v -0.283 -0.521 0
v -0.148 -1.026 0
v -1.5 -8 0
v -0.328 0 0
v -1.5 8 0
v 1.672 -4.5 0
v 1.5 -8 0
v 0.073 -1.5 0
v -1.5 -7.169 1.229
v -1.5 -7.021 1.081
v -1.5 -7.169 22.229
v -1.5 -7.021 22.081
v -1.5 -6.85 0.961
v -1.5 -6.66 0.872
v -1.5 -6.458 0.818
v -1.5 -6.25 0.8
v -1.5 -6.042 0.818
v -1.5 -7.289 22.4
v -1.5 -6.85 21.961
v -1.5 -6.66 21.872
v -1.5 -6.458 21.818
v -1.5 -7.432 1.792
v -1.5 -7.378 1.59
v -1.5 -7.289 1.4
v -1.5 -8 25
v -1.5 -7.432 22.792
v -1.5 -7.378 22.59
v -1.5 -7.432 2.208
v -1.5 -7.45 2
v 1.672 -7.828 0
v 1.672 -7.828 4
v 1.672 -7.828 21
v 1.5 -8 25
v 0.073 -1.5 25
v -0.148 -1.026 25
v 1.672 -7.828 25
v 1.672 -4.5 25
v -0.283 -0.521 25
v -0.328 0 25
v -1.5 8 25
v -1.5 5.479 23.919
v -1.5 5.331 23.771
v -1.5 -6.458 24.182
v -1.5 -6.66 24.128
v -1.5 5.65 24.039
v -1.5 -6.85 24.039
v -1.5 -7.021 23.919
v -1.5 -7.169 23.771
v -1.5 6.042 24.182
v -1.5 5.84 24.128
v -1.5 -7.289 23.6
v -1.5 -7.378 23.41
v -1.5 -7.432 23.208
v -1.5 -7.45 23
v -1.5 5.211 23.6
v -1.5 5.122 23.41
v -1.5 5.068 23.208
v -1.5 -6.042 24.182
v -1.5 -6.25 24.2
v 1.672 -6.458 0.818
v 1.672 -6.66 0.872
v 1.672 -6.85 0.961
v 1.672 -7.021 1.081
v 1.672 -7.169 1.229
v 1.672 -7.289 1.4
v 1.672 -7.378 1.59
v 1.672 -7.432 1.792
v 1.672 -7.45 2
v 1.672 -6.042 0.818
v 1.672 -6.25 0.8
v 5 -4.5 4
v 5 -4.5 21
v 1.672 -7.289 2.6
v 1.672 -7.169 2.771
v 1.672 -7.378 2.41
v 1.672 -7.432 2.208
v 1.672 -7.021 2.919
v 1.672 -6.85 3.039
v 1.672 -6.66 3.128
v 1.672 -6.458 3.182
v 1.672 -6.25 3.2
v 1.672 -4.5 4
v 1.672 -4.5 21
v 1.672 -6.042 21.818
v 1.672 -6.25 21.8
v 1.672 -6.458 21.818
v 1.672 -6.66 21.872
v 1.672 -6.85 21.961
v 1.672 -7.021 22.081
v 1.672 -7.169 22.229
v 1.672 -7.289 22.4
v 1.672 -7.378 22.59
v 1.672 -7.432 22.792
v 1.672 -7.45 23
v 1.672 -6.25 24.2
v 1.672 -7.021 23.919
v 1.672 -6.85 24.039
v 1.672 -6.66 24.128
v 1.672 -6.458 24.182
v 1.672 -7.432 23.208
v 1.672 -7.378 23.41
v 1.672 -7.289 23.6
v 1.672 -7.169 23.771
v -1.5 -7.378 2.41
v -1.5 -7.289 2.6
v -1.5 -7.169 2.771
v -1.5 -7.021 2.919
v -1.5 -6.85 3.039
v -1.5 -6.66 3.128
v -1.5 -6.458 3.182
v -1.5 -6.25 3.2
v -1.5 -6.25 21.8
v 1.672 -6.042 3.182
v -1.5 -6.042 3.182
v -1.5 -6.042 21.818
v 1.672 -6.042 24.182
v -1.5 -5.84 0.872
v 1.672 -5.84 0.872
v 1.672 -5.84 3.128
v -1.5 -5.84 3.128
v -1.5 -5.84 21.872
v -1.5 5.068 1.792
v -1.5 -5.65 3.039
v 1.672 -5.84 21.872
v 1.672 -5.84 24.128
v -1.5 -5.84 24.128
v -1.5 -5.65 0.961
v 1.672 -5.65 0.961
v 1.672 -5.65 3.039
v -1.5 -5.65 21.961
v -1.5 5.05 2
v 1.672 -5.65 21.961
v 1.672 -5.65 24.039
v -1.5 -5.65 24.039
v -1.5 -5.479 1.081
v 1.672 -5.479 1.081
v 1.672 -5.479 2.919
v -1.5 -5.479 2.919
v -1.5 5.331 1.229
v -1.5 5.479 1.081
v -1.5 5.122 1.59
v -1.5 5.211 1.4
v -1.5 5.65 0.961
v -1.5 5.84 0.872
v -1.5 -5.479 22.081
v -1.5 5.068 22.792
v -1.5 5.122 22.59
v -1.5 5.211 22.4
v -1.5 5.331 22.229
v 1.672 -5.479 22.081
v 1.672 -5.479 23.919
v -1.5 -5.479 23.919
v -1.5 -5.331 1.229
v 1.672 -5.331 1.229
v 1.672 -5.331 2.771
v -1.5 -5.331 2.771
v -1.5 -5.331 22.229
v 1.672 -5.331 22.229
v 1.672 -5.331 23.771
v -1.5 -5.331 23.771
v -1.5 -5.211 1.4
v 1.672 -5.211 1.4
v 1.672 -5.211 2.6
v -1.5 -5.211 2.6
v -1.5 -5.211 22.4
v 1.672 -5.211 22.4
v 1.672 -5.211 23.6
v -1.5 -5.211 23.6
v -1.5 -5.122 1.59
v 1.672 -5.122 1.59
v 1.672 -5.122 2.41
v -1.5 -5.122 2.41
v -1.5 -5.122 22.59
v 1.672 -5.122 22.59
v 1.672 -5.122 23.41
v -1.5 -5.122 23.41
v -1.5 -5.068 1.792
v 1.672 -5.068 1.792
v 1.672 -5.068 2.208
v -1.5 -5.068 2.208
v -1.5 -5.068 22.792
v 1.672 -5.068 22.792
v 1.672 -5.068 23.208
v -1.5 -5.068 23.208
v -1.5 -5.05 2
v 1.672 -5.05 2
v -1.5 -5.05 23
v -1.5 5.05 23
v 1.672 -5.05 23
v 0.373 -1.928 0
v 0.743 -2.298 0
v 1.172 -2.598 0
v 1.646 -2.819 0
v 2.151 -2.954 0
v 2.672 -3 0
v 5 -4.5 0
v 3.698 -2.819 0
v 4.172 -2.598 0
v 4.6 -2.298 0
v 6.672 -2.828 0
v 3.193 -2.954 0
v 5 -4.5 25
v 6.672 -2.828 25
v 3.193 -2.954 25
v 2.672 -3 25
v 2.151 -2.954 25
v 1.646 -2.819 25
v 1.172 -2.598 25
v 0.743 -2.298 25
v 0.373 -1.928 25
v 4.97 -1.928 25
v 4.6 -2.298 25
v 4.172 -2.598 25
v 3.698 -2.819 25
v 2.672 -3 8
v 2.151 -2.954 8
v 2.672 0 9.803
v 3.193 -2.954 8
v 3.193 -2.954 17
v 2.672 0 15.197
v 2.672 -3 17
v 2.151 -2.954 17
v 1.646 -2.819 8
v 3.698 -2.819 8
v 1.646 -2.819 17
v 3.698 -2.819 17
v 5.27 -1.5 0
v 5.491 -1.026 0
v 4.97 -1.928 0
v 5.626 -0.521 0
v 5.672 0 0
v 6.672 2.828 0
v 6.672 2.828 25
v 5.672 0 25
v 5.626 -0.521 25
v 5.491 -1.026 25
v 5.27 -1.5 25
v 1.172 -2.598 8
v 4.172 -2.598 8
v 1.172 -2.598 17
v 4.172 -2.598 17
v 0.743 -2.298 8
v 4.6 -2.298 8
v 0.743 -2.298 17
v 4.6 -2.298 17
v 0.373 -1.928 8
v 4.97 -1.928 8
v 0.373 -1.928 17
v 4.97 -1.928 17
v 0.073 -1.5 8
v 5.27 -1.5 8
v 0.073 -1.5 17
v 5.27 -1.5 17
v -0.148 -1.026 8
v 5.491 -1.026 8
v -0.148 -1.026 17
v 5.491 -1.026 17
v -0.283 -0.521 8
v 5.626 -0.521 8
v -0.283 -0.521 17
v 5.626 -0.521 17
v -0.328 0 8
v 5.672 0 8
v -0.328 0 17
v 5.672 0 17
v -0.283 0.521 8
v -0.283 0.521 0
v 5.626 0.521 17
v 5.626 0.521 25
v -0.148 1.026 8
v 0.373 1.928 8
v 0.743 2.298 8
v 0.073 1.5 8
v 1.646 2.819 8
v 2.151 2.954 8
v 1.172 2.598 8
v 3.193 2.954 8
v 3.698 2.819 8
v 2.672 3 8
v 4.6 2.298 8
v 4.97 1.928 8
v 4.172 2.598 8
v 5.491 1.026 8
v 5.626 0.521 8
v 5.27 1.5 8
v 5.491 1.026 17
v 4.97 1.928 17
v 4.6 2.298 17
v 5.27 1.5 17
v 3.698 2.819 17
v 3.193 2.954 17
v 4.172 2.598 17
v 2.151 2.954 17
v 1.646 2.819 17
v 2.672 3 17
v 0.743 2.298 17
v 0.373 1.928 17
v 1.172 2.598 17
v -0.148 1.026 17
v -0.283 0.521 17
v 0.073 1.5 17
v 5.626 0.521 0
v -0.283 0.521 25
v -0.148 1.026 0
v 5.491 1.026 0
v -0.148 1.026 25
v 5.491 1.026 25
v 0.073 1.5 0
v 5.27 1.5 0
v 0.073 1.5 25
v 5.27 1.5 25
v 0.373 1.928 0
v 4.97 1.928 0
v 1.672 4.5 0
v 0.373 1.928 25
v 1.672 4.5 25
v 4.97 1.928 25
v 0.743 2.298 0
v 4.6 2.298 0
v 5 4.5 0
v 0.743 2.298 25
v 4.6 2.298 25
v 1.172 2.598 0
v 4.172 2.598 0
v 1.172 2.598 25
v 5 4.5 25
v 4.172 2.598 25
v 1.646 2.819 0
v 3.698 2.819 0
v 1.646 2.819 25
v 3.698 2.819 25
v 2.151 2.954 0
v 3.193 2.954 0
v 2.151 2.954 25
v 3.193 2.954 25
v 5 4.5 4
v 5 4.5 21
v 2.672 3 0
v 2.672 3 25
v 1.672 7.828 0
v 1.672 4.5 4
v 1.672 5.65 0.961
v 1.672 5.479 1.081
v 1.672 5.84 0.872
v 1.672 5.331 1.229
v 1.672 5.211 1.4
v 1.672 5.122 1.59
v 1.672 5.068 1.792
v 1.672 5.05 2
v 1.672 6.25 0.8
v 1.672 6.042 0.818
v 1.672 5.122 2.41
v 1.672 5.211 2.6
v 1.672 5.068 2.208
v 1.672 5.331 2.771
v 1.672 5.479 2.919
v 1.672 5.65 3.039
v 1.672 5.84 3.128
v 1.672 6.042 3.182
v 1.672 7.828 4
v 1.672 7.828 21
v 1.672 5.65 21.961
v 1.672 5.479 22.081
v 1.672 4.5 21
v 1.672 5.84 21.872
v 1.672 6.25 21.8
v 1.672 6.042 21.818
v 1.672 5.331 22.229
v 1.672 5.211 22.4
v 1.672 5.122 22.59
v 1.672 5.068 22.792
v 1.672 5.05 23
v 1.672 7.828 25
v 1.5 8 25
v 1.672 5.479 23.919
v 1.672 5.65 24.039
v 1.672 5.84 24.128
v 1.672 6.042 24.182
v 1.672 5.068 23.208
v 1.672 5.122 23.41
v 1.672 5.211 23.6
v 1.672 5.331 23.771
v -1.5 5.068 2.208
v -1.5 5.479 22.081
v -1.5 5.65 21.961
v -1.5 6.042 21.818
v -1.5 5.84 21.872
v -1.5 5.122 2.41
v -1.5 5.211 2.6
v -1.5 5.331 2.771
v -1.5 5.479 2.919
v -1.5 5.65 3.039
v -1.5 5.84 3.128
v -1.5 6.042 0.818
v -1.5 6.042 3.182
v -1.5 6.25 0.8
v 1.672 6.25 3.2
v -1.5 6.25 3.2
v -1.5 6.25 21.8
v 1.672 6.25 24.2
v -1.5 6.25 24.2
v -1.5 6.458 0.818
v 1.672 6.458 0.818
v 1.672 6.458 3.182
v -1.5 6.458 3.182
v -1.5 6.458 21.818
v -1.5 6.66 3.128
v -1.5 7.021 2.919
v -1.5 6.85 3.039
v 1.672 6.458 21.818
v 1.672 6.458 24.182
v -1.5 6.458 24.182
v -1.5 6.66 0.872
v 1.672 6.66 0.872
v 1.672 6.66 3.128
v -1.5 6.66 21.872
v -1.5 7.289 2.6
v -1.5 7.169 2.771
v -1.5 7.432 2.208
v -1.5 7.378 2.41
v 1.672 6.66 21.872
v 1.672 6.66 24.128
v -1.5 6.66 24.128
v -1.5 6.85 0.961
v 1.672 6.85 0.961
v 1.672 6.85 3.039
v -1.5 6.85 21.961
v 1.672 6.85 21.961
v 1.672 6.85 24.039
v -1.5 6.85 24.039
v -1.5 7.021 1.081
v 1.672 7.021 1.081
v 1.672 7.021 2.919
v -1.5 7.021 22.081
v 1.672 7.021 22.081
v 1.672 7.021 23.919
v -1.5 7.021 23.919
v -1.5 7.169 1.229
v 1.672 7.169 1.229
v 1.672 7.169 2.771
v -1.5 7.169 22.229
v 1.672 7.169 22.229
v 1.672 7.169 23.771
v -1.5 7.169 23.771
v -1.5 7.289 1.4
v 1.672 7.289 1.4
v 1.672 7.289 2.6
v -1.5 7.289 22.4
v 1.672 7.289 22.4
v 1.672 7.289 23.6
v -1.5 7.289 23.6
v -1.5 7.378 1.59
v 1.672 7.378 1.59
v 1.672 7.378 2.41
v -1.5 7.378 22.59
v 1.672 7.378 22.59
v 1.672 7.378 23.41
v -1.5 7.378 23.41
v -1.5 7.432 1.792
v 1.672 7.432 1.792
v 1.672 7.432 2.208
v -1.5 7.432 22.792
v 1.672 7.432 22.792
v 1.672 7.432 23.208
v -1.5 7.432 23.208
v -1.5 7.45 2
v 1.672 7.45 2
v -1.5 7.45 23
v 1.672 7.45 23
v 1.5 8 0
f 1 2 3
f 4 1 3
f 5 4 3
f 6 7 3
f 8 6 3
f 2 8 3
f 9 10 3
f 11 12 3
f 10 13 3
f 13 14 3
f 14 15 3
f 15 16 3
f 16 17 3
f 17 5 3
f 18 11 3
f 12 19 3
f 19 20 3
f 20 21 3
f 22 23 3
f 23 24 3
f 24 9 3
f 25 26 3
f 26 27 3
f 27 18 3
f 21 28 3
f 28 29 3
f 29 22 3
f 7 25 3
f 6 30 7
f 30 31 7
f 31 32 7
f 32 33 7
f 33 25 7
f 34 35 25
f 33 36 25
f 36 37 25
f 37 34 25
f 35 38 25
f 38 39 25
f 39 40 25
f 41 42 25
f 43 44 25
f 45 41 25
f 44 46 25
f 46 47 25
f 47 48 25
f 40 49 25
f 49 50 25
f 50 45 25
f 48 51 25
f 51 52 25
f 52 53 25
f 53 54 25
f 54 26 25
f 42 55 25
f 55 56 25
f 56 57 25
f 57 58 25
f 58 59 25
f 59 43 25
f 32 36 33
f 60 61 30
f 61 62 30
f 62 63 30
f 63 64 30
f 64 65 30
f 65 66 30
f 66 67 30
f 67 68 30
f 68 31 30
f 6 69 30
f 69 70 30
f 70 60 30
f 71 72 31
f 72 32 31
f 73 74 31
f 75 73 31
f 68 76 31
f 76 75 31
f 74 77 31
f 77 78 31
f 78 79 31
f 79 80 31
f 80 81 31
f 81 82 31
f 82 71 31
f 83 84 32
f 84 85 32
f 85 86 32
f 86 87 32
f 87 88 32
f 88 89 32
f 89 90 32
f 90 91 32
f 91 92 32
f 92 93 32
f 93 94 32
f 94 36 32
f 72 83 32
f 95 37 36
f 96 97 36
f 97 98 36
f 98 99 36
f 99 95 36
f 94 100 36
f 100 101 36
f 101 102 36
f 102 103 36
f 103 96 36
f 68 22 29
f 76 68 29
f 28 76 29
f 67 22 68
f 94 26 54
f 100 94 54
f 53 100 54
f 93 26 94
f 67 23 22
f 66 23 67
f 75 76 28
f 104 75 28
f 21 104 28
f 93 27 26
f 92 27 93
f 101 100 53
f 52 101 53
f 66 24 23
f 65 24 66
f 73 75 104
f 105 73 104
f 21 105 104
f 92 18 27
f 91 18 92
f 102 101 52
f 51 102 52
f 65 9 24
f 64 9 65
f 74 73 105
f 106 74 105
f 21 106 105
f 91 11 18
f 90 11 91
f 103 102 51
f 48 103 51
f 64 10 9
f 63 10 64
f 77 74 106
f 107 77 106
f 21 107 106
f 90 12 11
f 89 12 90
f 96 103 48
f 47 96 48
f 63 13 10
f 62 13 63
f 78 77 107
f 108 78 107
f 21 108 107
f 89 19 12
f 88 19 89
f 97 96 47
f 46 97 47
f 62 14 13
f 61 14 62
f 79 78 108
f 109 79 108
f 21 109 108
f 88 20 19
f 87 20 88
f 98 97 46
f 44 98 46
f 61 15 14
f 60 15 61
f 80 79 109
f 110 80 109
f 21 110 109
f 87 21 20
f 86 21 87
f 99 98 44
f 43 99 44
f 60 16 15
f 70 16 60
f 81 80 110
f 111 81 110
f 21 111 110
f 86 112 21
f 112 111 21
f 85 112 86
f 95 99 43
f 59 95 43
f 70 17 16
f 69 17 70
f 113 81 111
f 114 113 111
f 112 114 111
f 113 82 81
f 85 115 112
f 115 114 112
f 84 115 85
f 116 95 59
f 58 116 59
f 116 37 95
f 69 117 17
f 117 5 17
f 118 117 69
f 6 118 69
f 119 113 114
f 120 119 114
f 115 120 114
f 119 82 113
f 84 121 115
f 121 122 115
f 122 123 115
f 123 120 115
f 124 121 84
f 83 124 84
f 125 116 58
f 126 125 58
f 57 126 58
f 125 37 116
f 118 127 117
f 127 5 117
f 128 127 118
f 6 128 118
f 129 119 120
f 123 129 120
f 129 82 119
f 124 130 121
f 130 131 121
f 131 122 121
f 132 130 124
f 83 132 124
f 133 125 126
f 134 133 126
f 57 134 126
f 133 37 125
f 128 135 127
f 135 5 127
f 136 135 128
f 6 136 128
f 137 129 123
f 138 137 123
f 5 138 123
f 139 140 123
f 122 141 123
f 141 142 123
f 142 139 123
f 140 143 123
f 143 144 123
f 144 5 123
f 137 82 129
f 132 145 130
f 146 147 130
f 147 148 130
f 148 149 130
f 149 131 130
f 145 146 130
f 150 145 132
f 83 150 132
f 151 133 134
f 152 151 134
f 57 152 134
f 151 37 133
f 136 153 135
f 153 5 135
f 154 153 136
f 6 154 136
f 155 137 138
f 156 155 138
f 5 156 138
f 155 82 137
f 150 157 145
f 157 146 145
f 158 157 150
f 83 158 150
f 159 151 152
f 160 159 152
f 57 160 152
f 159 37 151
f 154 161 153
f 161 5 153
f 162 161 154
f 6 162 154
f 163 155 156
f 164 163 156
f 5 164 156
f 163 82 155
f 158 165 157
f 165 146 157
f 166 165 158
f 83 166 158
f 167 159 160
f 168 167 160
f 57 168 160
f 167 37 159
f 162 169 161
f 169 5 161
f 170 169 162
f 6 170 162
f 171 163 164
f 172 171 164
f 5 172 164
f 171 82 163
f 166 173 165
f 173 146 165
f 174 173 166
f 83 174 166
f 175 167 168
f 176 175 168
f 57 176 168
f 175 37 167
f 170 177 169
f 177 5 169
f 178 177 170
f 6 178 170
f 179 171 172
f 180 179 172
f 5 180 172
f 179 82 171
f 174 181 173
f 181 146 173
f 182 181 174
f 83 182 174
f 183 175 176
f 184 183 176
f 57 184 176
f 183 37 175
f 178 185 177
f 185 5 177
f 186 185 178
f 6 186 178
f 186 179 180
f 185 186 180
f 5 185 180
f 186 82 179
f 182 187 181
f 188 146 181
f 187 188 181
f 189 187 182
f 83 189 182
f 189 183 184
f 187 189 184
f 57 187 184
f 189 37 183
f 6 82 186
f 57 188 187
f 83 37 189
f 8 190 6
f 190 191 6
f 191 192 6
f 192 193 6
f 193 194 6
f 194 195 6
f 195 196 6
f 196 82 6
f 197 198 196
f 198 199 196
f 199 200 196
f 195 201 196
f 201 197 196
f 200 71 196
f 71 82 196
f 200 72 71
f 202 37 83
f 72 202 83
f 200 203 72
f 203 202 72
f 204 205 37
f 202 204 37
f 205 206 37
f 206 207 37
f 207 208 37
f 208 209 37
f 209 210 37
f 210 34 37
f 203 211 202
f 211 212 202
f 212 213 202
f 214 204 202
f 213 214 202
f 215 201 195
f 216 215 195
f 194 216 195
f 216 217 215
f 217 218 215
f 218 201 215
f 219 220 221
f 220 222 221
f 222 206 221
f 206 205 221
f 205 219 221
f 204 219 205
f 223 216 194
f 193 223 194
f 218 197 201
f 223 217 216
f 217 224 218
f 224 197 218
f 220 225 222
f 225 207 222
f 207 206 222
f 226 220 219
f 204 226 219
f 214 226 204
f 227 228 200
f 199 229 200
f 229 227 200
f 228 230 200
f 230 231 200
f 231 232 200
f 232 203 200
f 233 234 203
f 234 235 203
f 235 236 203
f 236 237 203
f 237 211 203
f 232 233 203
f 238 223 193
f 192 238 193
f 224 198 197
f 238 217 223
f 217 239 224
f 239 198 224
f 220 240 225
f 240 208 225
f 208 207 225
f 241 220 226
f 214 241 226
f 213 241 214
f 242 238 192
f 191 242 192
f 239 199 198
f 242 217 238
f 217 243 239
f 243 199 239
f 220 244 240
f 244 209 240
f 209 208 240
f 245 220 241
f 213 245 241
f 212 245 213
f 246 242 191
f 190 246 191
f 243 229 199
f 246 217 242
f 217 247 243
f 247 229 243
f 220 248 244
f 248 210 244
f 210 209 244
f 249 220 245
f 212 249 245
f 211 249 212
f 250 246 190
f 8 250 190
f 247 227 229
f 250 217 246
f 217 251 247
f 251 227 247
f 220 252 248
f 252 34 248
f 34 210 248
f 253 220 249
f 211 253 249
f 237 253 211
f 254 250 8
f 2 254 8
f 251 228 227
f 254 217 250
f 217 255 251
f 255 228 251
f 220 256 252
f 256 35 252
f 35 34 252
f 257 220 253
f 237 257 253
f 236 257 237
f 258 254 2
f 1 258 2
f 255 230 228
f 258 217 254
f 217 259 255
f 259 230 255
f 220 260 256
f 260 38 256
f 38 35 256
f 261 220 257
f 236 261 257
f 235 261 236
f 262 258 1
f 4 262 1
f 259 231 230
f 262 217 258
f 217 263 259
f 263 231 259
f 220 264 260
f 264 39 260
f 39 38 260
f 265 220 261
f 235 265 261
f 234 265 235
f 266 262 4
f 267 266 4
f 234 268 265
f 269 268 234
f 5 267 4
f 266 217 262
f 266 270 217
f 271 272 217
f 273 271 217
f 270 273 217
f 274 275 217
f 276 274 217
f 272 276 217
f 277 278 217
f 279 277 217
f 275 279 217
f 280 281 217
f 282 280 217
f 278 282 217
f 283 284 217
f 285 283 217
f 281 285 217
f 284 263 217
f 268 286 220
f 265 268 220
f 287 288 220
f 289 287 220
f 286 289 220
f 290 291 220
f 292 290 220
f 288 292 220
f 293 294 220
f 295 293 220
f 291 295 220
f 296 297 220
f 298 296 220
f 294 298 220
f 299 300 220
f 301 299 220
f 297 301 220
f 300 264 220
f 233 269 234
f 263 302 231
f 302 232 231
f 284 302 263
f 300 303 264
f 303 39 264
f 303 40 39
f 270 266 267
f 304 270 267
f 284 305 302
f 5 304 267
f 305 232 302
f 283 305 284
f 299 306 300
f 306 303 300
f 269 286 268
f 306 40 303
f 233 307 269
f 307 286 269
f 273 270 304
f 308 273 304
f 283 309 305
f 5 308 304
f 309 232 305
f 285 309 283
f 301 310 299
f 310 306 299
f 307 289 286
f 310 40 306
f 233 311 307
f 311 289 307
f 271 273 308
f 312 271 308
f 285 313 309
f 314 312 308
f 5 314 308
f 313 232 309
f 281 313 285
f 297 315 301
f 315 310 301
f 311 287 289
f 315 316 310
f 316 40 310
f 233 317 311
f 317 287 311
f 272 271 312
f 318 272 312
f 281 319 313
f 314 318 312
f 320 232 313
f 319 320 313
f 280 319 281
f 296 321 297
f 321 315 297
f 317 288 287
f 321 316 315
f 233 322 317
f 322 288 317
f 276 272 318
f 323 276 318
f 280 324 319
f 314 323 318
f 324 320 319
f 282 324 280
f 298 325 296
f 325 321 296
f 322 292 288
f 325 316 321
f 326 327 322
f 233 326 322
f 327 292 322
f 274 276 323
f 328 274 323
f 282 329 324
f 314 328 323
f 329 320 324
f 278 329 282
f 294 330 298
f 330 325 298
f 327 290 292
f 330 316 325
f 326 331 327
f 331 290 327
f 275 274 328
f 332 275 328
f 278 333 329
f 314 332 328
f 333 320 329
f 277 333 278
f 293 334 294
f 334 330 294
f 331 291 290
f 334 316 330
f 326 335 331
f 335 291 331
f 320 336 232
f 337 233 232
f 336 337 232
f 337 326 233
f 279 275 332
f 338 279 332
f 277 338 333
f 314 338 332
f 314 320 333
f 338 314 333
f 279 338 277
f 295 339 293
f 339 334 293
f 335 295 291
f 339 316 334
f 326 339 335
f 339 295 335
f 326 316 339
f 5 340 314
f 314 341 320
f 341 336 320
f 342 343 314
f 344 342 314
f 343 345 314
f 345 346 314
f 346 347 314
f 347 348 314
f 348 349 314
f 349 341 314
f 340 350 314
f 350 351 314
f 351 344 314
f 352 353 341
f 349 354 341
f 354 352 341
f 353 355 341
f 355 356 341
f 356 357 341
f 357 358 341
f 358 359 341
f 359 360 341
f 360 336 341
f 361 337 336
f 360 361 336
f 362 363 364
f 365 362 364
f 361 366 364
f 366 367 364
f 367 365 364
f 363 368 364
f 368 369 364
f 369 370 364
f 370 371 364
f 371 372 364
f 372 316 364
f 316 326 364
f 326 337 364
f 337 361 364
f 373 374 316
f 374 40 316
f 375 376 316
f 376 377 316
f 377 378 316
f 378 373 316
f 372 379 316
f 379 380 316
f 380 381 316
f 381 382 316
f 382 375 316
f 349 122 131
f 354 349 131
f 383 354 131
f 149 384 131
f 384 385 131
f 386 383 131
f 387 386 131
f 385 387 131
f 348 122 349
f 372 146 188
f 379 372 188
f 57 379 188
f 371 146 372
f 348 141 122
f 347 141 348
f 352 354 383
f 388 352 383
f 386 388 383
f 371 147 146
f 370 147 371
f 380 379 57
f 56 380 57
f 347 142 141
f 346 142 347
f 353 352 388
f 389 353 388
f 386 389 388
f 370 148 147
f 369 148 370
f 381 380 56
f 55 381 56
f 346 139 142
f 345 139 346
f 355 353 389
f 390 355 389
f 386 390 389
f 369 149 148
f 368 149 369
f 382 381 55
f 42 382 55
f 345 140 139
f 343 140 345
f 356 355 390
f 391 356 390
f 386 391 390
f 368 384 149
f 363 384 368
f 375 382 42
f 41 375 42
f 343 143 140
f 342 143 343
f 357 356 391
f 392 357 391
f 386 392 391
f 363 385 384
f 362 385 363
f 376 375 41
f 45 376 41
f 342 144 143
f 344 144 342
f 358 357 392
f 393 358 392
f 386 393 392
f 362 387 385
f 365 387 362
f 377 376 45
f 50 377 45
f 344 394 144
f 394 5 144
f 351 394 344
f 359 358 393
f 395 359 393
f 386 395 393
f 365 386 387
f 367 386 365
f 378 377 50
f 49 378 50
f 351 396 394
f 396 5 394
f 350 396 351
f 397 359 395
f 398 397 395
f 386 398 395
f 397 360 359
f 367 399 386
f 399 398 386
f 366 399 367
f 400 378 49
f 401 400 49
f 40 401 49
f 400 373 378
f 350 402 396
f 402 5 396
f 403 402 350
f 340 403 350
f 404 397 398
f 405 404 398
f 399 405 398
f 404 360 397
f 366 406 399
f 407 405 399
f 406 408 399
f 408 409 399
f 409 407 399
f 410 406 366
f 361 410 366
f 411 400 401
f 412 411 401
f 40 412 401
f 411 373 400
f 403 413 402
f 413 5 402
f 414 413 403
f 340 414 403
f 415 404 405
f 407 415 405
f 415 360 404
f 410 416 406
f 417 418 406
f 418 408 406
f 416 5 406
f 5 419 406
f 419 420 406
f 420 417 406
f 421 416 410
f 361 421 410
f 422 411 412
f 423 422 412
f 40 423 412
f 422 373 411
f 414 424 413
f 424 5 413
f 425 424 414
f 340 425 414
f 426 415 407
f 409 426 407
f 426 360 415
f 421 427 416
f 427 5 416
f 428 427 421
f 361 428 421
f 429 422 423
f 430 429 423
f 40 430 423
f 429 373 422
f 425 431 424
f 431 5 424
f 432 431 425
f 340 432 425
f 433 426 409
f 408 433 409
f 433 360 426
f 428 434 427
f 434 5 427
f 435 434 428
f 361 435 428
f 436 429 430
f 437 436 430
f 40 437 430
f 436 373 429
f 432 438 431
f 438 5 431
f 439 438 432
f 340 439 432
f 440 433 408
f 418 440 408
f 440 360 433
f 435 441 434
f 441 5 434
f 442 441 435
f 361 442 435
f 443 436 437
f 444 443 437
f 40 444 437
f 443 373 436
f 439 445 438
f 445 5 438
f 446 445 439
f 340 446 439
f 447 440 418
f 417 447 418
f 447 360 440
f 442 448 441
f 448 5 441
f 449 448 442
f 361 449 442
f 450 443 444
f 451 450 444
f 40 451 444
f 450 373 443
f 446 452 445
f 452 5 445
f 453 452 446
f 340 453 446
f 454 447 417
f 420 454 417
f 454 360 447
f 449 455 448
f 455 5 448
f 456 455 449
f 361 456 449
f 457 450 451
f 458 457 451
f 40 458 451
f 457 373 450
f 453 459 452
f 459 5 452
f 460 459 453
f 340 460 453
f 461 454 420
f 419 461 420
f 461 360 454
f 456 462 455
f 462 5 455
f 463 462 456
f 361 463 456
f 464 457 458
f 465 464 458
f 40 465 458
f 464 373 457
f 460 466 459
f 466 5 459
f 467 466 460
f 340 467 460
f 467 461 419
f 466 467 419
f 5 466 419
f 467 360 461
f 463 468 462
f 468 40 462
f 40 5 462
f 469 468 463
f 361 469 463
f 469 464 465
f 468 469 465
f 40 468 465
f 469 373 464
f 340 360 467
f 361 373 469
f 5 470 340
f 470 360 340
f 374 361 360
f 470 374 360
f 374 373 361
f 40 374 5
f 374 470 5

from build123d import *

# Parameters (mm, degrees)
SKETCH1_W            = 3
SKETCH1_H            = 16
BOSS_EXTRUDE1_DEPTH  = 25
BOSS_EXTRUDE2_DEPTH  = 25
M2_CLEARANCE_HOLE1_D = 2.4
CHAMFER1_SIZE        = 4
SKETCH12_W           = 4
SKETCH12_H           = 3.5
SKETCH12_R           = 1.2
CUT_EXTRUDE1_DEPTH   = 5


with BuildPart() as part:
    # Sketch1 → Boss-Extrude1 (new body)
    with BuildSketch(Plane.XY):
        Rectangle(SKETCH1_W, SKETCH1_H)
    extrude(amount=BOSS_EXTRUDE1_DEPTH)

    # Sketch4 → Boss-Extrude2 (add, through all)
    with BuildSketch(Plane.XY.offset(25)):
        Polygon((1.5, 8), (9.5, 0), (1.5, -8), align=None)
    extrude(amount=-BOSS_EXTRUDE2_DEPTH)

    # M2 Clearance Hole1 (through all)
    with Locations(Plane(origin=(-1.5, 0, 0), x_dir=(0, 0, -1), z_dir=(-1, 0, 0))):
        with Locations((-2, -6.25), (-23, 6.25), (-23, -6.25), (-2, 6.25)):
            Hole(M2_CLEARANCE_HOLE1_D / 2)

    # Chamfer1
    chamfer1_edges = [part.edges().sort_by_distance(p)[0] for p in [
        (9.5, 0, 12.5),
    ]]
    chamfer(chamfer1_edges, length=CHAMFER1_SIZE)

    # Sketch8 → Ø6.0mm Dowel Hole3 (revolve, cut)
    with BuildSketch(Plane(origin=(2.671572875, 0, 25), x_dir=(0, -1, 0), z_dir=(1, 0, 0))):
        Polygon((0, 0), (0, 9.802581857), (3, 8), (3, 0), align=None)
    f_6_0mm_dowel_hole3 = revolve(axis=Axis((2.671572875, 0, 31.35), (0, 0, -1)), mode=Mode.SUBTRACT)

    # Mirror2: Ø6.0mm Dowel Hole3 across plane
    add(f_6_0mm_dowel_hole3.mirror(Plane.XY.offset(12.5)), mode=Mode.SUBTRACT)

    # Sketch12 → Cut-Extrude1 (cut)
    with BuildSketch(Plane(origin=(6.671572875, 0, 0), x_dir=(0, 0, -1), z_dir=(1, 0, 0))):
        with Locations((-2, 6.25)):
            Rectangle(SKETCH12_W, SKETCH12_H)
        with Locations((-2, 6.25)):
            Circle(SKETCH12_R, mode=Mode.SUBTRACT)
        with Locations((-2, 6.25)):
            Circle(SKETCH12_R)
        with Locations((-2, -6.25)):
            Circle(SKETCH12_R)
        with Locations((-2, -6.25)):
            Rectangle(SKETCH12_W, SKETCH12_H)
        with Locations((-2, -6.25)):
            Circle(SKETCH12_R, mode=Mode.SUBTRACT)
        with Locations((-23, -6.25)):
            Circle(SKETCH12_R)
        with Locations((-23, -6.25)):
            Rectangle(SKETCH12_W, SKETCH12_H)
        with Locations((-23, -6.25)):
            Circle(SKETCH12_R, mode=Mode.SUBTRACT)
        with Locations((-23, 6.25)):
            Circle(SKETCH12_R)
        with Locations((-23, 6.25)):
            Rectangle(SKETCH12_W, SKETCH12_H)
        with Locations((-23, 6.25)):
            Circle(SKETCH12_R, mode=Mode.SUBTRACT)
    extrude(amount=-CUT_EXTRUDE1_DEPTH, mode=Mode.SUBTRACT)


solid = part.part
